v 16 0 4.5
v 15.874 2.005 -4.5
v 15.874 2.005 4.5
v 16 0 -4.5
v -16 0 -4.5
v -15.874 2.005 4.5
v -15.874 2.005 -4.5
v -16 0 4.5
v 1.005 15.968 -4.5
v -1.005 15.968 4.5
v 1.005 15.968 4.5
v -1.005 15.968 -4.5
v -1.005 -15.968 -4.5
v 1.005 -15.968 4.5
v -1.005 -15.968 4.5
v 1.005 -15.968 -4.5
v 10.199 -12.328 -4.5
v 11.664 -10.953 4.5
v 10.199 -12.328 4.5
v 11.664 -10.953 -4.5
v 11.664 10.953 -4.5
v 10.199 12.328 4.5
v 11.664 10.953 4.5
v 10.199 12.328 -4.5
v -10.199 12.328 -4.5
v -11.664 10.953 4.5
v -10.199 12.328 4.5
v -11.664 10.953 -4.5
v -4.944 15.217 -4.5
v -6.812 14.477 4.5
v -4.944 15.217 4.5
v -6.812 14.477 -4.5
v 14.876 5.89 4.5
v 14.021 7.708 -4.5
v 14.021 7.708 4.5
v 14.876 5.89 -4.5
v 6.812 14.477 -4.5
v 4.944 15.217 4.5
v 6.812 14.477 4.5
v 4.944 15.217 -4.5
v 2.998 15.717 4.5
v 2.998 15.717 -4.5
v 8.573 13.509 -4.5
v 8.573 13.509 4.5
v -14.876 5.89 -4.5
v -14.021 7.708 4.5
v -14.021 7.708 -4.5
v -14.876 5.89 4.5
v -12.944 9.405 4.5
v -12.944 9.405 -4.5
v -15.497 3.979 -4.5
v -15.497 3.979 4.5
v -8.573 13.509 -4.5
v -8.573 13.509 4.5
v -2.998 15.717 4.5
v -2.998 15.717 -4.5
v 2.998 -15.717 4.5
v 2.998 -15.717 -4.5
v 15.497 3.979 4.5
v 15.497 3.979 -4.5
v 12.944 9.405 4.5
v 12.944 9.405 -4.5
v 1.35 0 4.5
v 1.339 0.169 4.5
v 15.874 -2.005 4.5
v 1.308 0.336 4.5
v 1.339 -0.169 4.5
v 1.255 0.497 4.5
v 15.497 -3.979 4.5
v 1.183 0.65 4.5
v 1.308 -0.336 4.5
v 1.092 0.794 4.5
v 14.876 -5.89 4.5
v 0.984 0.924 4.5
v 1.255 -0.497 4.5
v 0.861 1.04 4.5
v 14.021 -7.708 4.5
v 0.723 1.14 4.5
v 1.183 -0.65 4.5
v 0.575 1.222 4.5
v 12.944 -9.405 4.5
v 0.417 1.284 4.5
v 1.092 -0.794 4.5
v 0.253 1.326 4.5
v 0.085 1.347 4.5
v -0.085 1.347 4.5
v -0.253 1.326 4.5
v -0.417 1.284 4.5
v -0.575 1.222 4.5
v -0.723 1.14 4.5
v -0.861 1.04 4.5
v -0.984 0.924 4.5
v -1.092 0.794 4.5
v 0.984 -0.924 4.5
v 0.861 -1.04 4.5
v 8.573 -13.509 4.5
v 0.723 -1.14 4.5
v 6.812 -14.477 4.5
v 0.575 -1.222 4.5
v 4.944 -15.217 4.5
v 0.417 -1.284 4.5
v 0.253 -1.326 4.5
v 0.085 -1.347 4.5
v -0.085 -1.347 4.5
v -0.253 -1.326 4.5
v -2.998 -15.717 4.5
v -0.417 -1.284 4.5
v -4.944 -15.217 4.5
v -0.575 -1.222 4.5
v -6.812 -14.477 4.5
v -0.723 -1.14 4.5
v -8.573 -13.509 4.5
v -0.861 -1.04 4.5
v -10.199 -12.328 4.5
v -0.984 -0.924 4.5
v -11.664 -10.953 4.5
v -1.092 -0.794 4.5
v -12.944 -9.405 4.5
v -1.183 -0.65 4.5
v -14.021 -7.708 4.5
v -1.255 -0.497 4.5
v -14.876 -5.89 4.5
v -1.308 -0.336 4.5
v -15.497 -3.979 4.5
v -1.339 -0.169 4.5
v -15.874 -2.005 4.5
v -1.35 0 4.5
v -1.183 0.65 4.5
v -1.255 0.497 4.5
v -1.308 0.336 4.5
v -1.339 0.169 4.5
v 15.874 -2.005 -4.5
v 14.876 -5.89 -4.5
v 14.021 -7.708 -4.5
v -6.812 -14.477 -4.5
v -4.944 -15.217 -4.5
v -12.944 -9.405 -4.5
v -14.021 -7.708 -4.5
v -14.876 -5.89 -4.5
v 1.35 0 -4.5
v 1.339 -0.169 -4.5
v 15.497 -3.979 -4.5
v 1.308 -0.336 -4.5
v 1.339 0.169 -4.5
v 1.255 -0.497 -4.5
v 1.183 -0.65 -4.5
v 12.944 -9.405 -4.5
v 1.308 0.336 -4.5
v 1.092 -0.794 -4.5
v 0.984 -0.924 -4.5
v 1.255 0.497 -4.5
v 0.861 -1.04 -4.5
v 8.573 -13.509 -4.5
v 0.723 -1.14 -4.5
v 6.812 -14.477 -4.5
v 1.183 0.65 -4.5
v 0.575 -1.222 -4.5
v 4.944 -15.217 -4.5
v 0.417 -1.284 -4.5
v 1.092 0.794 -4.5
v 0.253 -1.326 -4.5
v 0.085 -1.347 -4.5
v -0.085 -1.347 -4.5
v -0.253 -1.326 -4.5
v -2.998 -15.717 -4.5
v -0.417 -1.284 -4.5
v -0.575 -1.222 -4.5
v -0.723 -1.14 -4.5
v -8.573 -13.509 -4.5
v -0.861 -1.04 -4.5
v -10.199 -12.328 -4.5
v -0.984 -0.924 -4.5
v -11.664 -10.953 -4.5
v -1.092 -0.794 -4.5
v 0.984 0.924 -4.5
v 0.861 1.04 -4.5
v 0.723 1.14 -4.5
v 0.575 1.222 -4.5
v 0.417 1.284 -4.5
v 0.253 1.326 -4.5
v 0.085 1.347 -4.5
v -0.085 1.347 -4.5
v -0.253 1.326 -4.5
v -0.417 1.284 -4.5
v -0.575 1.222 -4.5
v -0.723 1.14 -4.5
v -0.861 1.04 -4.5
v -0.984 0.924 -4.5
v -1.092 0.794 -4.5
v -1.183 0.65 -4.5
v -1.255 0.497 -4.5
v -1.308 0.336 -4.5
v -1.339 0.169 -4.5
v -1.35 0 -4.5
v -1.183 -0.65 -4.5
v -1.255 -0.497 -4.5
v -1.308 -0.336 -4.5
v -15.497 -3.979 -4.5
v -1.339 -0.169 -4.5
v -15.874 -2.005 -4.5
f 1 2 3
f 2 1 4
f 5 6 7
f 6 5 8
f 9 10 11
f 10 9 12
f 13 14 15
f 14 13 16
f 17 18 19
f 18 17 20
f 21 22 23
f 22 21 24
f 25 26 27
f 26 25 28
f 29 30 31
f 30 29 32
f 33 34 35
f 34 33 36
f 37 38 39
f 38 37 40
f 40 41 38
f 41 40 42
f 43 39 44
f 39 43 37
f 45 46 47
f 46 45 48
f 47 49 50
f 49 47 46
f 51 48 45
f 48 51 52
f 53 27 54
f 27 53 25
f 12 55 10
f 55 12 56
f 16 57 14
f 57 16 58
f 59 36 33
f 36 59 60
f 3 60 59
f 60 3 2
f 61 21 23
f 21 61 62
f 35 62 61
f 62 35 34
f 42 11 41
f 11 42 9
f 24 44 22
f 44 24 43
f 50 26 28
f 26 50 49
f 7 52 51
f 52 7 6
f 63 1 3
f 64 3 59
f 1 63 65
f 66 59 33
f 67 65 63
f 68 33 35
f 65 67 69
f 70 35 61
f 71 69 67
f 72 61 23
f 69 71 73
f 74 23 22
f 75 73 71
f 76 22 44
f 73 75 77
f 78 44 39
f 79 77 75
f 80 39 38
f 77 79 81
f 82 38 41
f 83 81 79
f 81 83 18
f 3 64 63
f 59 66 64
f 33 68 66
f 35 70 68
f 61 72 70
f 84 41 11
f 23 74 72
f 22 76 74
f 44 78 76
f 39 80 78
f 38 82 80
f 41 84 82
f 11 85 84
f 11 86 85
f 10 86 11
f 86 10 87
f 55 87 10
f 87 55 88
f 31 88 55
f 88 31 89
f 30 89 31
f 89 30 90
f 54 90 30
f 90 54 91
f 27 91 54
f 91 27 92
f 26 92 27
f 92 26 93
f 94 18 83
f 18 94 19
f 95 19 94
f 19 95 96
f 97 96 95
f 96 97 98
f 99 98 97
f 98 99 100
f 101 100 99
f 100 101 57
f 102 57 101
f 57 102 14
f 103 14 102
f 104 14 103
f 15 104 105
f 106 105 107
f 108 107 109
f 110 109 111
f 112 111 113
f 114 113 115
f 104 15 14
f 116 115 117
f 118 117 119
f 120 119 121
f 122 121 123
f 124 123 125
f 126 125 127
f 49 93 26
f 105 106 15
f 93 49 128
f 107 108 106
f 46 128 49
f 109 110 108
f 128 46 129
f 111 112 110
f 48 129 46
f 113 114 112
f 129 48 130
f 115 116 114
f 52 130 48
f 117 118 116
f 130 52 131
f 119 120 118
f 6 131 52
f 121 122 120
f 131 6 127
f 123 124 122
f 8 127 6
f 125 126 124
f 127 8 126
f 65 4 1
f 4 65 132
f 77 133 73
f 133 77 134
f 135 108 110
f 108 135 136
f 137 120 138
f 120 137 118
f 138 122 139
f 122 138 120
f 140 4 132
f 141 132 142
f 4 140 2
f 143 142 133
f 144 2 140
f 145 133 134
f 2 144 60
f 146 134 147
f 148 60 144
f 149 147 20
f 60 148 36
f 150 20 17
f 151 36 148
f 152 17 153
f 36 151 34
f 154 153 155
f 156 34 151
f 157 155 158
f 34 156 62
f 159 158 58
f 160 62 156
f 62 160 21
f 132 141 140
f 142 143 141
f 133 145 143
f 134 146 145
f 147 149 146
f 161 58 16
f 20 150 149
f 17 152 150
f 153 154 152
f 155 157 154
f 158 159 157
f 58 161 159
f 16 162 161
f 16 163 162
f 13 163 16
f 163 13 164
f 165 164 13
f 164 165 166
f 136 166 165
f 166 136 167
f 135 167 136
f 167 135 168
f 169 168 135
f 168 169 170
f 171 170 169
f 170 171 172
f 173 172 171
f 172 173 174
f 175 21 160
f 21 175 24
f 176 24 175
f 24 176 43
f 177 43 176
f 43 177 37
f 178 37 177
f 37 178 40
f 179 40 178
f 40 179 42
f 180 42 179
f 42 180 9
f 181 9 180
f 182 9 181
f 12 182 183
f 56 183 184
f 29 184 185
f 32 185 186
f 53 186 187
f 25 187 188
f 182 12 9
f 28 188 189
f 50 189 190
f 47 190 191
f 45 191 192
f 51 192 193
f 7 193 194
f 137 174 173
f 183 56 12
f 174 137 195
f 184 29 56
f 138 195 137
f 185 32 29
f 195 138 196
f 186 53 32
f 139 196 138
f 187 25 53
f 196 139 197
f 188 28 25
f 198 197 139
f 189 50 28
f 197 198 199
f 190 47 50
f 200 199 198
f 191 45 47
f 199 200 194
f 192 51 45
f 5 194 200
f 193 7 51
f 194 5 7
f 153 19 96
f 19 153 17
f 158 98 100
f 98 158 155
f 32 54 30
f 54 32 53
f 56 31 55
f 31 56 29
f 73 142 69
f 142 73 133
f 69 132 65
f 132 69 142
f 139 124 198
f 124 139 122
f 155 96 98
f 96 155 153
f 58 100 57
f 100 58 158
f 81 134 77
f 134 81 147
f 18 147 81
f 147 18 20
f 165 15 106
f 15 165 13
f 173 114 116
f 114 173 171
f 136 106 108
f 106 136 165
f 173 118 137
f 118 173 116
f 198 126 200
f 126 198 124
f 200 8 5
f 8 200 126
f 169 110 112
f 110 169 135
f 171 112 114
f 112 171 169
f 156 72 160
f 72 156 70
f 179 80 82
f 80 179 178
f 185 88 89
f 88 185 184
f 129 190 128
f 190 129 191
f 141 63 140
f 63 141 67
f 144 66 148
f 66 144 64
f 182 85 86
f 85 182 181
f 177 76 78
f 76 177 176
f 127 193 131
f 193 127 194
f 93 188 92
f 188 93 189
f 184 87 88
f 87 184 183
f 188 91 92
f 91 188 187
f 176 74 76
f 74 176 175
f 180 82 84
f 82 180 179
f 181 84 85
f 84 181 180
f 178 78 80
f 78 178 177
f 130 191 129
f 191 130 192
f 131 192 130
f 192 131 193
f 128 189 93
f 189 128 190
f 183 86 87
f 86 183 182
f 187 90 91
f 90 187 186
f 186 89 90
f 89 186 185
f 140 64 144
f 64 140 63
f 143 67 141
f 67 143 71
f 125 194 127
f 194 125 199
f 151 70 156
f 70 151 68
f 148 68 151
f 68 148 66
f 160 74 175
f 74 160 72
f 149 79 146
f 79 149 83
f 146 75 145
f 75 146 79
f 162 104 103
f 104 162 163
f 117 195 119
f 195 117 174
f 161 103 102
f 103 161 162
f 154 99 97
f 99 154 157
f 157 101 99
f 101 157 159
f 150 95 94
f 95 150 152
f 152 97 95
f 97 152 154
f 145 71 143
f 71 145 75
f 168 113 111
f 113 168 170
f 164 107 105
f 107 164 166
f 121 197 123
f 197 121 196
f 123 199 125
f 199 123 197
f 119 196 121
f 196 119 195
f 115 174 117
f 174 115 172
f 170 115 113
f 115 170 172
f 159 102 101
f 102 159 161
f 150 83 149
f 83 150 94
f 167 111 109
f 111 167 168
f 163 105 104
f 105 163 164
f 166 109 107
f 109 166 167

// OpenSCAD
$fn = 50;


difference() {
	union() {
		translate(v = [0, 0, -4.5000000000]) {
			cylinder(h = 9, r = 16.0000000000);
		}
	}
	union() {
		translate(v = [0, 0, -100.0000000000]) {
			cylinder(h = 200, r = 1.3500000000);
		}
	}
}
